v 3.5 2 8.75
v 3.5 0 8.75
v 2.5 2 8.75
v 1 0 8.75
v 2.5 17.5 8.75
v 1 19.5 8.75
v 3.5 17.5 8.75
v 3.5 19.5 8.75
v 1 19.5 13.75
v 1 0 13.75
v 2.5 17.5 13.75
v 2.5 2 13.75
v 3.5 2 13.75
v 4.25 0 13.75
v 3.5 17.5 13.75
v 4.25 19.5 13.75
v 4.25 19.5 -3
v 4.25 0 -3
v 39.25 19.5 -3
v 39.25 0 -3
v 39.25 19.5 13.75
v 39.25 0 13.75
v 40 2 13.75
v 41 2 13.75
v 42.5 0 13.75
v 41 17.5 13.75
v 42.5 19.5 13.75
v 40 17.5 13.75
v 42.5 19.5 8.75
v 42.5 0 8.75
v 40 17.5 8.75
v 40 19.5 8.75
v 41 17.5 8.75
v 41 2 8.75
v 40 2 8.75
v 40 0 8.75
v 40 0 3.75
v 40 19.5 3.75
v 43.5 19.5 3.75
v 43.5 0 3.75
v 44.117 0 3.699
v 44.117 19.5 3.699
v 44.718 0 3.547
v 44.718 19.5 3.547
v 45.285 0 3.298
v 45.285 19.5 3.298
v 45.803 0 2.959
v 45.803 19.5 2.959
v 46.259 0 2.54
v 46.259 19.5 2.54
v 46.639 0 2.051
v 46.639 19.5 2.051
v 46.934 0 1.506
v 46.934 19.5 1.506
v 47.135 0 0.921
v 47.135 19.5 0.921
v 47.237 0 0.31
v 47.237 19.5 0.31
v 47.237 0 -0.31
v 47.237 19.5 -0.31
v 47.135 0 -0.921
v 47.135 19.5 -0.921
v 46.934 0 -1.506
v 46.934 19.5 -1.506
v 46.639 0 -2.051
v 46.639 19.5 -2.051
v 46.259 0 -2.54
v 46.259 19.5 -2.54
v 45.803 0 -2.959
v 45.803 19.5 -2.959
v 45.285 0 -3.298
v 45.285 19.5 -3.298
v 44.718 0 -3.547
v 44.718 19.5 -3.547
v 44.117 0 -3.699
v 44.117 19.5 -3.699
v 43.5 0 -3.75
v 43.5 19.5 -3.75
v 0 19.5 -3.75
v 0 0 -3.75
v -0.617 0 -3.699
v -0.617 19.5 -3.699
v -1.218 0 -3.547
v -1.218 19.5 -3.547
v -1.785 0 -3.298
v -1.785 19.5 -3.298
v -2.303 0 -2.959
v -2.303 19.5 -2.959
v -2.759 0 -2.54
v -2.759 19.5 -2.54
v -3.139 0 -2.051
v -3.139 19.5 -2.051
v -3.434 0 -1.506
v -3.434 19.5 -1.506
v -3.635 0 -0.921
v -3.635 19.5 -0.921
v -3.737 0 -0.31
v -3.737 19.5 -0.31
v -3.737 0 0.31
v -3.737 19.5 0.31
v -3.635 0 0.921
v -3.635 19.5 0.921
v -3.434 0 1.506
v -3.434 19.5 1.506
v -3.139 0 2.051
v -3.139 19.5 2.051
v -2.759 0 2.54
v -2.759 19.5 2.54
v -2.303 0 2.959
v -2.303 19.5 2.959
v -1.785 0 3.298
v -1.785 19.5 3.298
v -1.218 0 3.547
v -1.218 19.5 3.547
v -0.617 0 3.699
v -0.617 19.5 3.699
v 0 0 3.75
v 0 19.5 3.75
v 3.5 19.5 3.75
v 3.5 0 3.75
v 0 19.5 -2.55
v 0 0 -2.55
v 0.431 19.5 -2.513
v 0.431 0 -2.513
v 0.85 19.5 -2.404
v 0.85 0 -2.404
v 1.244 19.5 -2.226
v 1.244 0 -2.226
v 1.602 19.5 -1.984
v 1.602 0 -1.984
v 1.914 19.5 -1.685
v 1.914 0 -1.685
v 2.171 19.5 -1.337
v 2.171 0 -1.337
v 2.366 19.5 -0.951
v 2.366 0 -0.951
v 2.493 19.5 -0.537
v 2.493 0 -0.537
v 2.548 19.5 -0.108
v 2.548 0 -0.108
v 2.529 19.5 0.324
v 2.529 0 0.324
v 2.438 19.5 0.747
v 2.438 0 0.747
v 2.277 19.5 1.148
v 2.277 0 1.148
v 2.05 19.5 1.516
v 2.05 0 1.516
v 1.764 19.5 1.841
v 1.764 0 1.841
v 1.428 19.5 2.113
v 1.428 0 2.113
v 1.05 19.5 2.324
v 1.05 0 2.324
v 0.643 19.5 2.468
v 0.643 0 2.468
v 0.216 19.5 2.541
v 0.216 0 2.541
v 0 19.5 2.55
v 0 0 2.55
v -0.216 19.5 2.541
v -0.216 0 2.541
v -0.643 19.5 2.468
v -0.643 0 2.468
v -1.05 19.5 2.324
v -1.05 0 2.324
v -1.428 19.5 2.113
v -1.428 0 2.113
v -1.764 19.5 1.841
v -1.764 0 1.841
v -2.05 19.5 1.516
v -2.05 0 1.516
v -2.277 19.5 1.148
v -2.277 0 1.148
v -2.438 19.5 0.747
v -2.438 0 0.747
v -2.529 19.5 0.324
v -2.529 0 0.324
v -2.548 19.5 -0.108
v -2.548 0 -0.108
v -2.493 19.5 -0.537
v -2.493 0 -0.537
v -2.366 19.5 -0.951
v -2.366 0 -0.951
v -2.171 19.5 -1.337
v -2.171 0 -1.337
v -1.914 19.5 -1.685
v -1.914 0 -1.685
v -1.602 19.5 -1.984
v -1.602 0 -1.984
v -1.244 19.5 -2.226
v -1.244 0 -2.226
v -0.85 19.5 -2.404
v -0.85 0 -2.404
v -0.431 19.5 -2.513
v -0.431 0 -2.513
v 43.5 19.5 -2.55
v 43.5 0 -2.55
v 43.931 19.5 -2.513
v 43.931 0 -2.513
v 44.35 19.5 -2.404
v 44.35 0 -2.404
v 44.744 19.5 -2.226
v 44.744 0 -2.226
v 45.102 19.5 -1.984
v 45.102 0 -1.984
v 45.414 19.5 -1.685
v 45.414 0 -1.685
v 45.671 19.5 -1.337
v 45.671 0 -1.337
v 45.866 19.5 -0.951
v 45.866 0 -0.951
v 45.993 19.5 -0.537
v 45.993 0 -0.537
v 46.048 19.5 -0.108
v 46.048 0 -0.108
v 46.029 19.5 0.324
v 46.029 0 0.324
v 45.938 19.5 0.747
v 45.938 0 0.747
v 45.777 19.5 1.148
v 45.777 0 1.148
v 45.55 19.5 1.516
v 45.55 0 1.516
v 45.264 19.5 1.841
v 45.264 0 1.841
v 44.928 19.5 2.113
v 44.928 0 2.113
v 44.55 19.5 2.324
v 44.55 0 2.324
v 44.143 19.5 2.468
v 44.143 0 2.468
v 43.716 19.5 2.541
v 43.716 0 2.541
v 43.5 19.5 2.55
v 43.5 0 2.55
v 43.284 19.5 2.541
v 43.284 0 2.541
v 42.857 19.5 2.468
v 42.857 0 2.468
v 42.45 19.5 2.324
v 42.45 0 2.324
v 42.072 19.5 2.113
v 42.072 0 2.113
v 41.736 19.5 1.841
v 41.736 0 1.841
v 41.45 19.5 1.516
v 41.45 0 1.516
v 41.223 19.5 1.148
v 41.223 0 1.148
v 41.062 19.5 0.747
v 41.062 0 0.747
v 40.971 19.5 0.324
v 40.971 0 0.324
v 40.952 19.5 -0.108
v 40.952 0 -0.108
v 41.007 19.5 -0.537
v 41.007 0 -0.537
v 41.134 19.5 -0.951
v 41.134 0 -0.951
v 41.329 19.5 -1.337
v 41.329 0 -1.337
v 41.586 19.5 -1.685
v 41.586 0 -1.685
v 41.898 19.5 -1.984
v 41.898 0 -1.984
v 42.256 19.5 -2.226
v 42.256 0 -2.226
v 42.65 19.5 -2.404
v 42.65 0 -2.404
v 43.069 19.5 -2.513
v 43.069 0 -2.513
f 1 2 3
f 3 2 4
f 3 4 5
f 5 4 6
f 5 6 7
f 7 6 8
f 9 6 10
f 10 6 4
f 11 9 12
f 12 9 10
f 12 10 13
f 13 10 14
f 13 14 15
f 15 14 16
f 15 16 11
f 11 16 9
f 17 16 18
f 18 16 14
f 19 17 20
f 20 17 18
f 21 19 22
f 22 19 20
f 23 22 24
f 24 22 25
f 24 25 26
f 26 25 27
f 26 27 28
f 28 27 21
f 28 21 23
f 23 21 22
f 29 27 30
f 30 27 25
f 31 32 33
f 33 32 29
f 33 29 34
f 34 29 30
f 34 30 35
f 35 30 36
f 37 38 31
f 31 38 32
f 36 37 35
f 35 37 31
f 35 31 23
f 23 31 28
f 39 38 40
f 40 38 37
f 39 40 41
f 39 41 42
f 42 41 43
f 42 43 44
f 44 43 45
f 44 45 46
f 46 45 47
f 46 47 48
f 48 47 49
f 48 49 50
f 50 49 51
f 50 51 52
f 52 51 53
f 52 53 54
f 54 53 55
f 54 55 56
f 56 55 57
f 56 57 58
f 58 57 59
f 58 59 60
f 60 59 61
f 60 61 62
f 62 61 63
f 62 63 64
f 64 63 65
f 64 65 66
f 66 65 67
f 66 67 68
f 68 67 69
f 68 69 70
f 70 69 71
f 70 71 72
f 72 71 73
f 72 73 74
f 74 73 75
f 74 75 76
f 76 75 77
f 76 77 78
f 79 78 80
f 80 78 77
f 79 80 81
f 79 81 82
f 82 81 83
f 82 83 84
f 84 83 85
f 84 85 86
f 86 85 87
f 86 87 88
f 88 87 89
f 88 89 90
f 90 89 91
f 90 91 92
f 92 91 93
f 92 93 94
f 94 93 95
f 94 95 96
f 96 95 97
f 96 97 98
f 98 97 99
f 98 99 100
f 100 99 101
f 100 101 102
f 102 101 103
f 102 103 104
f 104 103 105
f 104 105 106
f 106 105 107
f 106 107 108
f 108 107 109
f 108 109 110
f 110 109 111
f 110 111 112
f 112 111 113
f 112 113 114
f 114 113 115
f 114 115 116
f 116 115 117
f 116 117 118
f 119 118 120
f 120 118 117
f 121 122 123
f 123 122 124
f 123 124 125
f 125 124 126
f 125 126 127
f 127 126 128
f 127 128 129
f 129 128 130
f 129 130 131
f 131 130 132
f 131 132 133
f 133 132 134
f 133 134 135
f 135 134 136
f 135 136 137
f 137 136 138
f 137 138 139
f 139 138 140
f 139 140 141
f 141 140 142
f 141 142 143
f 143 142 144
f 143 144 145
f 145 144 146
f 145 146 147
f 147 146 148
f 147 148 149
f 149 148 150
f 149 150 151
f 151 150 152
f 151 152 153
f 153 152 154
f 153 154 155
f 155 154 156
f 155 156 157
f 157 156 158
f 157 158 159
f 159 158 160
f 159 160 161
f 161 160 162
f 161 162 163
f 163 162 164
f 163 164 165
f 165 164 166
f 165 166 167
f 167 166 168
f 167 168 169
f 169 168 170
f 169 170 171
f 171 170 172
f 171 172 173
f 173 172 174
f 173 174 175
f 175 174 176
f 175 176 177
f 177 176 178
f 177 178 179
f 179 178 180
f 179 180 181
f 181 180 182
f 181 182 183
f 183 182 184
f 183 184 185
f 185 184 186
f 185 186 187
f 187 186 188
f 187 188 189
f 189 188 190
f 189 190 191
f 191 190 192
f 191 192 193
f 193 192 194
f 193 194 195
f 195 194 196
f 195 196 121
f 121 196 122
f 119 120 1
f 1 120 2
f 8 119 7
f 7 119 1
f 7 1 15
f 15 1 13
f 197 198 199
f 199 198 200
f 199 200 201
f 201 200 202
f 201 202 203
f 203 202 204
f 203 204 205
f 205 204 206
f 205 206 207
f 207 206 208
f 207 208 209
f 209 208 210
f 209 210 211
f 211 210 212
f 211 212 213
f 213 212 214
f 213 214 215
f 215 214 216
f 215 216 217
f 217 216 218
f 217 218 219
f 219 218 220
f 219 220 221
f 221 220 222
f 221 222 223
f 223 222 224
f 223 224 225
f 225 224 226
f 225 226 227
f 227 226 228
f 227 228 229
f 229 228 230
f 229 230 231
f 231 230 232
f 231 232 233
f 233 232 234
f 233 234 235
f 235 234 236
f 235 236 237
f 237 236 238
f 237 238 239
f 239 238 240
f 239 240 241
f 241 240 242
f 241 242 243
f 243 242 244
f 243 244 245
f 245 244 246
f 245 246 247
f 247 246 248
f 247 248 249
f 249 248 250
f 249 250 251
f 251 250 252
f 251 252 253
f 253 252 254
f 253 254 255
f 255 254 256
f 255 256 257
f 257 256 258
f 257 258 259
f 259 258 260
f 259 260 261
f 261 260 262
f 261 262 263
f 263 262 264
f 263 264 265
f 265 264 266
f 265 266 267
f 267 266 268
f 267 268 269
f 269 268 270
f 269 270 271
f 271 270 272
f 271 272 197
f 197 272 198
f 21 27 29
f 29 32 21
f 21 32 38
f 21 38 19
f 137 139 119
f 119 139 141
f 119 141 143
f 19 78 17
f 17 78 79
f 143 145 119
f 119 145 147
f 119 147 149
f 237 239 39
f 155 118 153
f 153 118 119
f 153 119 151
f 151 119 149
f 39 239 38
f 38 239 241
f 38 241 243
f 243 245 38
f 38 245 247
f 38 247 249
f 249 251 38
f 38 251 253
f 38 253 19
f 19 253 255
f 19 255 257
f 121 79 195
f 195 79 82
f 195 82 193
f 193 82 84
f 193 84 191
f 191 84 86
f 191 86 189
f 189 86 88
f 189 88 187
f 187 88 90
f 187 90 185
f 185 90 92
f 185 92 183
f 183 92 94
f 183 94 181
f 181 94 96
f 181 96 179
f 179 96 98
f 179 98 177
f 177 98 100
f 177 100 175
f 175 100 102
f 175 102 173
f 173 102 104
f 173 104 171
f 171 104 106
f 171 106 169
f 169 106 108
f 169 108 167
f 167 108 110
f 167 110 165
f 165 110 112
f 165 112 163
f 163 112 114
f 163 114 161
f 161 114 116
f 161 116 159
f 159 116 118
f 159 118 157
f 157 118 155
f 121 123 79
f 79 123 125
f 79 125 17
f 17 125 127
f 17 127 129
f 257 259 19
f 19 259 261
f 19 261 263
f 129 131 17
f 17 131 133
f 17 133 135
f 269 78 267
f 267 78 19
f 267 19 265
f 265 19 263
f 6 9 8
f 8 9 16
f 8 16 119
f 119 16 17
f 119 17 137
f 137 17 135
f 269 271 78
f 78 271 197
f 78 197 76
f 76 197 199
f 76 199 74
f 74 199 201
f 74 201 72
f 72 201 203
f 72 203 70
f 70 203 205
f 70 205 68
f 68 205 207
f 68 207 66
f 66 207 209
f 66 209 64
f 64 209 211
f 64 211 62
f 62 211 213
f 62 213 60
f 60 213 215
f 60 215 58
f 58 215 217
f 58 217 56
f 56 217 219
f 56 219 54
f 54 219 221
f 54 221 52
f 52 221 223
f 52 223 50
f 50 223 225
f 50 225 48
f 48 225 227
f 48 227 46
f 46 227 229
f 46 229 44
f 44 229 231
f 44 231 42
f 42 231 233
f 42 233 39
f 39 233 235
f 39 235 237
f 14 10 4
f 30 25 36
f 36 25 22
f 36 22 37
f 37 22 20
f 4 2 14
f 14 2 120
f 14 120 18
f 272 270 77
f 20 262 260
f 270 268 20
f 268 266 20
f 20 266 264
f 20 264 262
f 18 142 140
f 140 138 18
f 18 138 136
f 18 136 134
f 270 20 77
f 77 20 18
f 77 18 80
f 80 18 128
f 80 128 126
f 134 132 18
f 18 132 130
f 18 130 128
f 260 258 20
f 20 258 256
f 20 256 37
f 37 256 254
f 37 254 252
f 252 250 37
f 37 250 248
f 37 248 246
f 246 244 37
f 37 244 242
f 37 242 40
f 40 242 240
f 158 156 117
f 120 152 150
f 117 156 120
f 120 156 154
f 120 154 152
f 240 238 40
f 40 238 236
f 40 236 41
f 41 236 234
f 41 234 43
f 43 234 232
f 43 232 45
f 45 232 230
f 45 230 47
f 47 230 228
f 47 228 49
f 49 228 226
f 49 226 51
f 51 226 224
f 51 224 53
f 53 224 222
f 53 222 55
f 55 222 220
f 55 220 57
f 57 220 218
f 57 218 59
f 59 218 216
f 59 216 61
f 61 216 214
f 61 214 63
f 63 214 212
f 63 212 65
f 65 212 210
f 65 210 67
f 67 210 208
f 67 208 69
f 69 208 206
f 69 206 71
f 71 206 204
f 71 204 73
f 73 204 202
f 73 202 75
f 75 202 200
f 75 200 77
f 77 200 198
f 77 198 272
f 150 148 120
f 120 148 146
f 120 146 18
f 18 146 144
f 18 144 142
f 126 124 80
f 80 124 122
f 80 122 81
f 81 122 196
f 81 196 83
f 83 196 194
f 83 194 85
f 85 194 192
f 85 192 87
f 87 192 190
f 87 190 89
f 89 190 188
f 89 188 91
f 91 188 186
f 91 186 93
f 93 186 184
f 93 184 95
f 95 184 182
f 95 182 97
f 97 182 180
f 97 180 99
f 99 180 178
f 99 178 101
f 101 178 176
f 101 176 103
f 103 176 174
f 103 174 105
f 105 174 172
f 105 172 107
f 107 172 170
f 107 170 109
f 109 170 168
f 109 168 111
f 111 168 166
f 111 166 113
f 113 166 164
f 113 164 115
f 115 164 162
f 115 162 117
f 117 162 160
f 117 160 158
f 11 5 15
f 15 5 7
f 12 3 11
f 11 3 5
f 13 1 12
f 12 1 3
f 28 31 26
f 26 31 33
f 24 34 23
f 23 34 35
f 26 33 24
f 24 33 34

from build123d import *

# Parameters (mm, degrees)
SKETCH1_R           = 2.55
BOSS_EXTRUDE2_DEPTH = 19.5
SKETCH2_W           = 1
SKETCH2_H           = 15.5
CUT_EXTRUDE1_DEPTH  = 5


with BuildPart() as part:
    # Sketch1 → Boss-Extrude2 (new body)
    with BuildSketch(Plane(origin=(0, 0, 0), x_dir=(1, 0, 0), z_dir=(0, 1, 0))):
        with BuildLine():
            ThreePointArc((0, 3.75), (-3.75, 0), (0, -3.75))
            Line((0, -3.75), (3.5, -3.75))
            Line((3.5, -3.75), (3.5, -8.75))
            Line((3.5, -8.75), (1, -8.75))
            Line((1, -8.75), (1, -13.75))
            Line((1, -13.75), (4.25, -13.75))
            Line((4.25, -13.75), (4.25, 3))
            Line((4.25, 3), (39.25, 3))
            Line((39.25, 3), (39.25, -13.75))
            Line((39.25, -13.75), (42.5, -13.75))
            Line((42.5, -13.75), (42.5, -8.75))
            Line((42.5, -8.75), (40, -8.75))
            Line((40, -8.75), (40, -3.75))
            Line((40, -3.75), (43.5, -3.75))
            ThreePointArc((43.5, -3.75), (47.25, 0), (43.5, 3.75))
            Line((43.5, 3.75), (0, 3.75))
        make_face()
        Circle(SKETCH1_R, mode=Mode.SUBTRACT)
        with Locations((43.5, 0)):
            Circle(SKETCH1_R, mode=Mode.SUBTRACT)
    extrude(amount=BOSS_EXTRUDE2_DEPTH)

    # Sketch2 → Cut-Extrude1 (cut)
    with BuildSketch(Plane.XY.offset(13.75)):
        with Locations((3, 9.75)):
            Rectangle(SKETCH2_W, SKETCH2_H)
        with Locations((40.5, 9.75)):
            Rectangle(SKETCH2_W, SKETCH2_H)
    extrude(amount=-CUT_EXTRUDE1_DEPTH, mode=Mode.SUBTRACT)


solid = part.part
